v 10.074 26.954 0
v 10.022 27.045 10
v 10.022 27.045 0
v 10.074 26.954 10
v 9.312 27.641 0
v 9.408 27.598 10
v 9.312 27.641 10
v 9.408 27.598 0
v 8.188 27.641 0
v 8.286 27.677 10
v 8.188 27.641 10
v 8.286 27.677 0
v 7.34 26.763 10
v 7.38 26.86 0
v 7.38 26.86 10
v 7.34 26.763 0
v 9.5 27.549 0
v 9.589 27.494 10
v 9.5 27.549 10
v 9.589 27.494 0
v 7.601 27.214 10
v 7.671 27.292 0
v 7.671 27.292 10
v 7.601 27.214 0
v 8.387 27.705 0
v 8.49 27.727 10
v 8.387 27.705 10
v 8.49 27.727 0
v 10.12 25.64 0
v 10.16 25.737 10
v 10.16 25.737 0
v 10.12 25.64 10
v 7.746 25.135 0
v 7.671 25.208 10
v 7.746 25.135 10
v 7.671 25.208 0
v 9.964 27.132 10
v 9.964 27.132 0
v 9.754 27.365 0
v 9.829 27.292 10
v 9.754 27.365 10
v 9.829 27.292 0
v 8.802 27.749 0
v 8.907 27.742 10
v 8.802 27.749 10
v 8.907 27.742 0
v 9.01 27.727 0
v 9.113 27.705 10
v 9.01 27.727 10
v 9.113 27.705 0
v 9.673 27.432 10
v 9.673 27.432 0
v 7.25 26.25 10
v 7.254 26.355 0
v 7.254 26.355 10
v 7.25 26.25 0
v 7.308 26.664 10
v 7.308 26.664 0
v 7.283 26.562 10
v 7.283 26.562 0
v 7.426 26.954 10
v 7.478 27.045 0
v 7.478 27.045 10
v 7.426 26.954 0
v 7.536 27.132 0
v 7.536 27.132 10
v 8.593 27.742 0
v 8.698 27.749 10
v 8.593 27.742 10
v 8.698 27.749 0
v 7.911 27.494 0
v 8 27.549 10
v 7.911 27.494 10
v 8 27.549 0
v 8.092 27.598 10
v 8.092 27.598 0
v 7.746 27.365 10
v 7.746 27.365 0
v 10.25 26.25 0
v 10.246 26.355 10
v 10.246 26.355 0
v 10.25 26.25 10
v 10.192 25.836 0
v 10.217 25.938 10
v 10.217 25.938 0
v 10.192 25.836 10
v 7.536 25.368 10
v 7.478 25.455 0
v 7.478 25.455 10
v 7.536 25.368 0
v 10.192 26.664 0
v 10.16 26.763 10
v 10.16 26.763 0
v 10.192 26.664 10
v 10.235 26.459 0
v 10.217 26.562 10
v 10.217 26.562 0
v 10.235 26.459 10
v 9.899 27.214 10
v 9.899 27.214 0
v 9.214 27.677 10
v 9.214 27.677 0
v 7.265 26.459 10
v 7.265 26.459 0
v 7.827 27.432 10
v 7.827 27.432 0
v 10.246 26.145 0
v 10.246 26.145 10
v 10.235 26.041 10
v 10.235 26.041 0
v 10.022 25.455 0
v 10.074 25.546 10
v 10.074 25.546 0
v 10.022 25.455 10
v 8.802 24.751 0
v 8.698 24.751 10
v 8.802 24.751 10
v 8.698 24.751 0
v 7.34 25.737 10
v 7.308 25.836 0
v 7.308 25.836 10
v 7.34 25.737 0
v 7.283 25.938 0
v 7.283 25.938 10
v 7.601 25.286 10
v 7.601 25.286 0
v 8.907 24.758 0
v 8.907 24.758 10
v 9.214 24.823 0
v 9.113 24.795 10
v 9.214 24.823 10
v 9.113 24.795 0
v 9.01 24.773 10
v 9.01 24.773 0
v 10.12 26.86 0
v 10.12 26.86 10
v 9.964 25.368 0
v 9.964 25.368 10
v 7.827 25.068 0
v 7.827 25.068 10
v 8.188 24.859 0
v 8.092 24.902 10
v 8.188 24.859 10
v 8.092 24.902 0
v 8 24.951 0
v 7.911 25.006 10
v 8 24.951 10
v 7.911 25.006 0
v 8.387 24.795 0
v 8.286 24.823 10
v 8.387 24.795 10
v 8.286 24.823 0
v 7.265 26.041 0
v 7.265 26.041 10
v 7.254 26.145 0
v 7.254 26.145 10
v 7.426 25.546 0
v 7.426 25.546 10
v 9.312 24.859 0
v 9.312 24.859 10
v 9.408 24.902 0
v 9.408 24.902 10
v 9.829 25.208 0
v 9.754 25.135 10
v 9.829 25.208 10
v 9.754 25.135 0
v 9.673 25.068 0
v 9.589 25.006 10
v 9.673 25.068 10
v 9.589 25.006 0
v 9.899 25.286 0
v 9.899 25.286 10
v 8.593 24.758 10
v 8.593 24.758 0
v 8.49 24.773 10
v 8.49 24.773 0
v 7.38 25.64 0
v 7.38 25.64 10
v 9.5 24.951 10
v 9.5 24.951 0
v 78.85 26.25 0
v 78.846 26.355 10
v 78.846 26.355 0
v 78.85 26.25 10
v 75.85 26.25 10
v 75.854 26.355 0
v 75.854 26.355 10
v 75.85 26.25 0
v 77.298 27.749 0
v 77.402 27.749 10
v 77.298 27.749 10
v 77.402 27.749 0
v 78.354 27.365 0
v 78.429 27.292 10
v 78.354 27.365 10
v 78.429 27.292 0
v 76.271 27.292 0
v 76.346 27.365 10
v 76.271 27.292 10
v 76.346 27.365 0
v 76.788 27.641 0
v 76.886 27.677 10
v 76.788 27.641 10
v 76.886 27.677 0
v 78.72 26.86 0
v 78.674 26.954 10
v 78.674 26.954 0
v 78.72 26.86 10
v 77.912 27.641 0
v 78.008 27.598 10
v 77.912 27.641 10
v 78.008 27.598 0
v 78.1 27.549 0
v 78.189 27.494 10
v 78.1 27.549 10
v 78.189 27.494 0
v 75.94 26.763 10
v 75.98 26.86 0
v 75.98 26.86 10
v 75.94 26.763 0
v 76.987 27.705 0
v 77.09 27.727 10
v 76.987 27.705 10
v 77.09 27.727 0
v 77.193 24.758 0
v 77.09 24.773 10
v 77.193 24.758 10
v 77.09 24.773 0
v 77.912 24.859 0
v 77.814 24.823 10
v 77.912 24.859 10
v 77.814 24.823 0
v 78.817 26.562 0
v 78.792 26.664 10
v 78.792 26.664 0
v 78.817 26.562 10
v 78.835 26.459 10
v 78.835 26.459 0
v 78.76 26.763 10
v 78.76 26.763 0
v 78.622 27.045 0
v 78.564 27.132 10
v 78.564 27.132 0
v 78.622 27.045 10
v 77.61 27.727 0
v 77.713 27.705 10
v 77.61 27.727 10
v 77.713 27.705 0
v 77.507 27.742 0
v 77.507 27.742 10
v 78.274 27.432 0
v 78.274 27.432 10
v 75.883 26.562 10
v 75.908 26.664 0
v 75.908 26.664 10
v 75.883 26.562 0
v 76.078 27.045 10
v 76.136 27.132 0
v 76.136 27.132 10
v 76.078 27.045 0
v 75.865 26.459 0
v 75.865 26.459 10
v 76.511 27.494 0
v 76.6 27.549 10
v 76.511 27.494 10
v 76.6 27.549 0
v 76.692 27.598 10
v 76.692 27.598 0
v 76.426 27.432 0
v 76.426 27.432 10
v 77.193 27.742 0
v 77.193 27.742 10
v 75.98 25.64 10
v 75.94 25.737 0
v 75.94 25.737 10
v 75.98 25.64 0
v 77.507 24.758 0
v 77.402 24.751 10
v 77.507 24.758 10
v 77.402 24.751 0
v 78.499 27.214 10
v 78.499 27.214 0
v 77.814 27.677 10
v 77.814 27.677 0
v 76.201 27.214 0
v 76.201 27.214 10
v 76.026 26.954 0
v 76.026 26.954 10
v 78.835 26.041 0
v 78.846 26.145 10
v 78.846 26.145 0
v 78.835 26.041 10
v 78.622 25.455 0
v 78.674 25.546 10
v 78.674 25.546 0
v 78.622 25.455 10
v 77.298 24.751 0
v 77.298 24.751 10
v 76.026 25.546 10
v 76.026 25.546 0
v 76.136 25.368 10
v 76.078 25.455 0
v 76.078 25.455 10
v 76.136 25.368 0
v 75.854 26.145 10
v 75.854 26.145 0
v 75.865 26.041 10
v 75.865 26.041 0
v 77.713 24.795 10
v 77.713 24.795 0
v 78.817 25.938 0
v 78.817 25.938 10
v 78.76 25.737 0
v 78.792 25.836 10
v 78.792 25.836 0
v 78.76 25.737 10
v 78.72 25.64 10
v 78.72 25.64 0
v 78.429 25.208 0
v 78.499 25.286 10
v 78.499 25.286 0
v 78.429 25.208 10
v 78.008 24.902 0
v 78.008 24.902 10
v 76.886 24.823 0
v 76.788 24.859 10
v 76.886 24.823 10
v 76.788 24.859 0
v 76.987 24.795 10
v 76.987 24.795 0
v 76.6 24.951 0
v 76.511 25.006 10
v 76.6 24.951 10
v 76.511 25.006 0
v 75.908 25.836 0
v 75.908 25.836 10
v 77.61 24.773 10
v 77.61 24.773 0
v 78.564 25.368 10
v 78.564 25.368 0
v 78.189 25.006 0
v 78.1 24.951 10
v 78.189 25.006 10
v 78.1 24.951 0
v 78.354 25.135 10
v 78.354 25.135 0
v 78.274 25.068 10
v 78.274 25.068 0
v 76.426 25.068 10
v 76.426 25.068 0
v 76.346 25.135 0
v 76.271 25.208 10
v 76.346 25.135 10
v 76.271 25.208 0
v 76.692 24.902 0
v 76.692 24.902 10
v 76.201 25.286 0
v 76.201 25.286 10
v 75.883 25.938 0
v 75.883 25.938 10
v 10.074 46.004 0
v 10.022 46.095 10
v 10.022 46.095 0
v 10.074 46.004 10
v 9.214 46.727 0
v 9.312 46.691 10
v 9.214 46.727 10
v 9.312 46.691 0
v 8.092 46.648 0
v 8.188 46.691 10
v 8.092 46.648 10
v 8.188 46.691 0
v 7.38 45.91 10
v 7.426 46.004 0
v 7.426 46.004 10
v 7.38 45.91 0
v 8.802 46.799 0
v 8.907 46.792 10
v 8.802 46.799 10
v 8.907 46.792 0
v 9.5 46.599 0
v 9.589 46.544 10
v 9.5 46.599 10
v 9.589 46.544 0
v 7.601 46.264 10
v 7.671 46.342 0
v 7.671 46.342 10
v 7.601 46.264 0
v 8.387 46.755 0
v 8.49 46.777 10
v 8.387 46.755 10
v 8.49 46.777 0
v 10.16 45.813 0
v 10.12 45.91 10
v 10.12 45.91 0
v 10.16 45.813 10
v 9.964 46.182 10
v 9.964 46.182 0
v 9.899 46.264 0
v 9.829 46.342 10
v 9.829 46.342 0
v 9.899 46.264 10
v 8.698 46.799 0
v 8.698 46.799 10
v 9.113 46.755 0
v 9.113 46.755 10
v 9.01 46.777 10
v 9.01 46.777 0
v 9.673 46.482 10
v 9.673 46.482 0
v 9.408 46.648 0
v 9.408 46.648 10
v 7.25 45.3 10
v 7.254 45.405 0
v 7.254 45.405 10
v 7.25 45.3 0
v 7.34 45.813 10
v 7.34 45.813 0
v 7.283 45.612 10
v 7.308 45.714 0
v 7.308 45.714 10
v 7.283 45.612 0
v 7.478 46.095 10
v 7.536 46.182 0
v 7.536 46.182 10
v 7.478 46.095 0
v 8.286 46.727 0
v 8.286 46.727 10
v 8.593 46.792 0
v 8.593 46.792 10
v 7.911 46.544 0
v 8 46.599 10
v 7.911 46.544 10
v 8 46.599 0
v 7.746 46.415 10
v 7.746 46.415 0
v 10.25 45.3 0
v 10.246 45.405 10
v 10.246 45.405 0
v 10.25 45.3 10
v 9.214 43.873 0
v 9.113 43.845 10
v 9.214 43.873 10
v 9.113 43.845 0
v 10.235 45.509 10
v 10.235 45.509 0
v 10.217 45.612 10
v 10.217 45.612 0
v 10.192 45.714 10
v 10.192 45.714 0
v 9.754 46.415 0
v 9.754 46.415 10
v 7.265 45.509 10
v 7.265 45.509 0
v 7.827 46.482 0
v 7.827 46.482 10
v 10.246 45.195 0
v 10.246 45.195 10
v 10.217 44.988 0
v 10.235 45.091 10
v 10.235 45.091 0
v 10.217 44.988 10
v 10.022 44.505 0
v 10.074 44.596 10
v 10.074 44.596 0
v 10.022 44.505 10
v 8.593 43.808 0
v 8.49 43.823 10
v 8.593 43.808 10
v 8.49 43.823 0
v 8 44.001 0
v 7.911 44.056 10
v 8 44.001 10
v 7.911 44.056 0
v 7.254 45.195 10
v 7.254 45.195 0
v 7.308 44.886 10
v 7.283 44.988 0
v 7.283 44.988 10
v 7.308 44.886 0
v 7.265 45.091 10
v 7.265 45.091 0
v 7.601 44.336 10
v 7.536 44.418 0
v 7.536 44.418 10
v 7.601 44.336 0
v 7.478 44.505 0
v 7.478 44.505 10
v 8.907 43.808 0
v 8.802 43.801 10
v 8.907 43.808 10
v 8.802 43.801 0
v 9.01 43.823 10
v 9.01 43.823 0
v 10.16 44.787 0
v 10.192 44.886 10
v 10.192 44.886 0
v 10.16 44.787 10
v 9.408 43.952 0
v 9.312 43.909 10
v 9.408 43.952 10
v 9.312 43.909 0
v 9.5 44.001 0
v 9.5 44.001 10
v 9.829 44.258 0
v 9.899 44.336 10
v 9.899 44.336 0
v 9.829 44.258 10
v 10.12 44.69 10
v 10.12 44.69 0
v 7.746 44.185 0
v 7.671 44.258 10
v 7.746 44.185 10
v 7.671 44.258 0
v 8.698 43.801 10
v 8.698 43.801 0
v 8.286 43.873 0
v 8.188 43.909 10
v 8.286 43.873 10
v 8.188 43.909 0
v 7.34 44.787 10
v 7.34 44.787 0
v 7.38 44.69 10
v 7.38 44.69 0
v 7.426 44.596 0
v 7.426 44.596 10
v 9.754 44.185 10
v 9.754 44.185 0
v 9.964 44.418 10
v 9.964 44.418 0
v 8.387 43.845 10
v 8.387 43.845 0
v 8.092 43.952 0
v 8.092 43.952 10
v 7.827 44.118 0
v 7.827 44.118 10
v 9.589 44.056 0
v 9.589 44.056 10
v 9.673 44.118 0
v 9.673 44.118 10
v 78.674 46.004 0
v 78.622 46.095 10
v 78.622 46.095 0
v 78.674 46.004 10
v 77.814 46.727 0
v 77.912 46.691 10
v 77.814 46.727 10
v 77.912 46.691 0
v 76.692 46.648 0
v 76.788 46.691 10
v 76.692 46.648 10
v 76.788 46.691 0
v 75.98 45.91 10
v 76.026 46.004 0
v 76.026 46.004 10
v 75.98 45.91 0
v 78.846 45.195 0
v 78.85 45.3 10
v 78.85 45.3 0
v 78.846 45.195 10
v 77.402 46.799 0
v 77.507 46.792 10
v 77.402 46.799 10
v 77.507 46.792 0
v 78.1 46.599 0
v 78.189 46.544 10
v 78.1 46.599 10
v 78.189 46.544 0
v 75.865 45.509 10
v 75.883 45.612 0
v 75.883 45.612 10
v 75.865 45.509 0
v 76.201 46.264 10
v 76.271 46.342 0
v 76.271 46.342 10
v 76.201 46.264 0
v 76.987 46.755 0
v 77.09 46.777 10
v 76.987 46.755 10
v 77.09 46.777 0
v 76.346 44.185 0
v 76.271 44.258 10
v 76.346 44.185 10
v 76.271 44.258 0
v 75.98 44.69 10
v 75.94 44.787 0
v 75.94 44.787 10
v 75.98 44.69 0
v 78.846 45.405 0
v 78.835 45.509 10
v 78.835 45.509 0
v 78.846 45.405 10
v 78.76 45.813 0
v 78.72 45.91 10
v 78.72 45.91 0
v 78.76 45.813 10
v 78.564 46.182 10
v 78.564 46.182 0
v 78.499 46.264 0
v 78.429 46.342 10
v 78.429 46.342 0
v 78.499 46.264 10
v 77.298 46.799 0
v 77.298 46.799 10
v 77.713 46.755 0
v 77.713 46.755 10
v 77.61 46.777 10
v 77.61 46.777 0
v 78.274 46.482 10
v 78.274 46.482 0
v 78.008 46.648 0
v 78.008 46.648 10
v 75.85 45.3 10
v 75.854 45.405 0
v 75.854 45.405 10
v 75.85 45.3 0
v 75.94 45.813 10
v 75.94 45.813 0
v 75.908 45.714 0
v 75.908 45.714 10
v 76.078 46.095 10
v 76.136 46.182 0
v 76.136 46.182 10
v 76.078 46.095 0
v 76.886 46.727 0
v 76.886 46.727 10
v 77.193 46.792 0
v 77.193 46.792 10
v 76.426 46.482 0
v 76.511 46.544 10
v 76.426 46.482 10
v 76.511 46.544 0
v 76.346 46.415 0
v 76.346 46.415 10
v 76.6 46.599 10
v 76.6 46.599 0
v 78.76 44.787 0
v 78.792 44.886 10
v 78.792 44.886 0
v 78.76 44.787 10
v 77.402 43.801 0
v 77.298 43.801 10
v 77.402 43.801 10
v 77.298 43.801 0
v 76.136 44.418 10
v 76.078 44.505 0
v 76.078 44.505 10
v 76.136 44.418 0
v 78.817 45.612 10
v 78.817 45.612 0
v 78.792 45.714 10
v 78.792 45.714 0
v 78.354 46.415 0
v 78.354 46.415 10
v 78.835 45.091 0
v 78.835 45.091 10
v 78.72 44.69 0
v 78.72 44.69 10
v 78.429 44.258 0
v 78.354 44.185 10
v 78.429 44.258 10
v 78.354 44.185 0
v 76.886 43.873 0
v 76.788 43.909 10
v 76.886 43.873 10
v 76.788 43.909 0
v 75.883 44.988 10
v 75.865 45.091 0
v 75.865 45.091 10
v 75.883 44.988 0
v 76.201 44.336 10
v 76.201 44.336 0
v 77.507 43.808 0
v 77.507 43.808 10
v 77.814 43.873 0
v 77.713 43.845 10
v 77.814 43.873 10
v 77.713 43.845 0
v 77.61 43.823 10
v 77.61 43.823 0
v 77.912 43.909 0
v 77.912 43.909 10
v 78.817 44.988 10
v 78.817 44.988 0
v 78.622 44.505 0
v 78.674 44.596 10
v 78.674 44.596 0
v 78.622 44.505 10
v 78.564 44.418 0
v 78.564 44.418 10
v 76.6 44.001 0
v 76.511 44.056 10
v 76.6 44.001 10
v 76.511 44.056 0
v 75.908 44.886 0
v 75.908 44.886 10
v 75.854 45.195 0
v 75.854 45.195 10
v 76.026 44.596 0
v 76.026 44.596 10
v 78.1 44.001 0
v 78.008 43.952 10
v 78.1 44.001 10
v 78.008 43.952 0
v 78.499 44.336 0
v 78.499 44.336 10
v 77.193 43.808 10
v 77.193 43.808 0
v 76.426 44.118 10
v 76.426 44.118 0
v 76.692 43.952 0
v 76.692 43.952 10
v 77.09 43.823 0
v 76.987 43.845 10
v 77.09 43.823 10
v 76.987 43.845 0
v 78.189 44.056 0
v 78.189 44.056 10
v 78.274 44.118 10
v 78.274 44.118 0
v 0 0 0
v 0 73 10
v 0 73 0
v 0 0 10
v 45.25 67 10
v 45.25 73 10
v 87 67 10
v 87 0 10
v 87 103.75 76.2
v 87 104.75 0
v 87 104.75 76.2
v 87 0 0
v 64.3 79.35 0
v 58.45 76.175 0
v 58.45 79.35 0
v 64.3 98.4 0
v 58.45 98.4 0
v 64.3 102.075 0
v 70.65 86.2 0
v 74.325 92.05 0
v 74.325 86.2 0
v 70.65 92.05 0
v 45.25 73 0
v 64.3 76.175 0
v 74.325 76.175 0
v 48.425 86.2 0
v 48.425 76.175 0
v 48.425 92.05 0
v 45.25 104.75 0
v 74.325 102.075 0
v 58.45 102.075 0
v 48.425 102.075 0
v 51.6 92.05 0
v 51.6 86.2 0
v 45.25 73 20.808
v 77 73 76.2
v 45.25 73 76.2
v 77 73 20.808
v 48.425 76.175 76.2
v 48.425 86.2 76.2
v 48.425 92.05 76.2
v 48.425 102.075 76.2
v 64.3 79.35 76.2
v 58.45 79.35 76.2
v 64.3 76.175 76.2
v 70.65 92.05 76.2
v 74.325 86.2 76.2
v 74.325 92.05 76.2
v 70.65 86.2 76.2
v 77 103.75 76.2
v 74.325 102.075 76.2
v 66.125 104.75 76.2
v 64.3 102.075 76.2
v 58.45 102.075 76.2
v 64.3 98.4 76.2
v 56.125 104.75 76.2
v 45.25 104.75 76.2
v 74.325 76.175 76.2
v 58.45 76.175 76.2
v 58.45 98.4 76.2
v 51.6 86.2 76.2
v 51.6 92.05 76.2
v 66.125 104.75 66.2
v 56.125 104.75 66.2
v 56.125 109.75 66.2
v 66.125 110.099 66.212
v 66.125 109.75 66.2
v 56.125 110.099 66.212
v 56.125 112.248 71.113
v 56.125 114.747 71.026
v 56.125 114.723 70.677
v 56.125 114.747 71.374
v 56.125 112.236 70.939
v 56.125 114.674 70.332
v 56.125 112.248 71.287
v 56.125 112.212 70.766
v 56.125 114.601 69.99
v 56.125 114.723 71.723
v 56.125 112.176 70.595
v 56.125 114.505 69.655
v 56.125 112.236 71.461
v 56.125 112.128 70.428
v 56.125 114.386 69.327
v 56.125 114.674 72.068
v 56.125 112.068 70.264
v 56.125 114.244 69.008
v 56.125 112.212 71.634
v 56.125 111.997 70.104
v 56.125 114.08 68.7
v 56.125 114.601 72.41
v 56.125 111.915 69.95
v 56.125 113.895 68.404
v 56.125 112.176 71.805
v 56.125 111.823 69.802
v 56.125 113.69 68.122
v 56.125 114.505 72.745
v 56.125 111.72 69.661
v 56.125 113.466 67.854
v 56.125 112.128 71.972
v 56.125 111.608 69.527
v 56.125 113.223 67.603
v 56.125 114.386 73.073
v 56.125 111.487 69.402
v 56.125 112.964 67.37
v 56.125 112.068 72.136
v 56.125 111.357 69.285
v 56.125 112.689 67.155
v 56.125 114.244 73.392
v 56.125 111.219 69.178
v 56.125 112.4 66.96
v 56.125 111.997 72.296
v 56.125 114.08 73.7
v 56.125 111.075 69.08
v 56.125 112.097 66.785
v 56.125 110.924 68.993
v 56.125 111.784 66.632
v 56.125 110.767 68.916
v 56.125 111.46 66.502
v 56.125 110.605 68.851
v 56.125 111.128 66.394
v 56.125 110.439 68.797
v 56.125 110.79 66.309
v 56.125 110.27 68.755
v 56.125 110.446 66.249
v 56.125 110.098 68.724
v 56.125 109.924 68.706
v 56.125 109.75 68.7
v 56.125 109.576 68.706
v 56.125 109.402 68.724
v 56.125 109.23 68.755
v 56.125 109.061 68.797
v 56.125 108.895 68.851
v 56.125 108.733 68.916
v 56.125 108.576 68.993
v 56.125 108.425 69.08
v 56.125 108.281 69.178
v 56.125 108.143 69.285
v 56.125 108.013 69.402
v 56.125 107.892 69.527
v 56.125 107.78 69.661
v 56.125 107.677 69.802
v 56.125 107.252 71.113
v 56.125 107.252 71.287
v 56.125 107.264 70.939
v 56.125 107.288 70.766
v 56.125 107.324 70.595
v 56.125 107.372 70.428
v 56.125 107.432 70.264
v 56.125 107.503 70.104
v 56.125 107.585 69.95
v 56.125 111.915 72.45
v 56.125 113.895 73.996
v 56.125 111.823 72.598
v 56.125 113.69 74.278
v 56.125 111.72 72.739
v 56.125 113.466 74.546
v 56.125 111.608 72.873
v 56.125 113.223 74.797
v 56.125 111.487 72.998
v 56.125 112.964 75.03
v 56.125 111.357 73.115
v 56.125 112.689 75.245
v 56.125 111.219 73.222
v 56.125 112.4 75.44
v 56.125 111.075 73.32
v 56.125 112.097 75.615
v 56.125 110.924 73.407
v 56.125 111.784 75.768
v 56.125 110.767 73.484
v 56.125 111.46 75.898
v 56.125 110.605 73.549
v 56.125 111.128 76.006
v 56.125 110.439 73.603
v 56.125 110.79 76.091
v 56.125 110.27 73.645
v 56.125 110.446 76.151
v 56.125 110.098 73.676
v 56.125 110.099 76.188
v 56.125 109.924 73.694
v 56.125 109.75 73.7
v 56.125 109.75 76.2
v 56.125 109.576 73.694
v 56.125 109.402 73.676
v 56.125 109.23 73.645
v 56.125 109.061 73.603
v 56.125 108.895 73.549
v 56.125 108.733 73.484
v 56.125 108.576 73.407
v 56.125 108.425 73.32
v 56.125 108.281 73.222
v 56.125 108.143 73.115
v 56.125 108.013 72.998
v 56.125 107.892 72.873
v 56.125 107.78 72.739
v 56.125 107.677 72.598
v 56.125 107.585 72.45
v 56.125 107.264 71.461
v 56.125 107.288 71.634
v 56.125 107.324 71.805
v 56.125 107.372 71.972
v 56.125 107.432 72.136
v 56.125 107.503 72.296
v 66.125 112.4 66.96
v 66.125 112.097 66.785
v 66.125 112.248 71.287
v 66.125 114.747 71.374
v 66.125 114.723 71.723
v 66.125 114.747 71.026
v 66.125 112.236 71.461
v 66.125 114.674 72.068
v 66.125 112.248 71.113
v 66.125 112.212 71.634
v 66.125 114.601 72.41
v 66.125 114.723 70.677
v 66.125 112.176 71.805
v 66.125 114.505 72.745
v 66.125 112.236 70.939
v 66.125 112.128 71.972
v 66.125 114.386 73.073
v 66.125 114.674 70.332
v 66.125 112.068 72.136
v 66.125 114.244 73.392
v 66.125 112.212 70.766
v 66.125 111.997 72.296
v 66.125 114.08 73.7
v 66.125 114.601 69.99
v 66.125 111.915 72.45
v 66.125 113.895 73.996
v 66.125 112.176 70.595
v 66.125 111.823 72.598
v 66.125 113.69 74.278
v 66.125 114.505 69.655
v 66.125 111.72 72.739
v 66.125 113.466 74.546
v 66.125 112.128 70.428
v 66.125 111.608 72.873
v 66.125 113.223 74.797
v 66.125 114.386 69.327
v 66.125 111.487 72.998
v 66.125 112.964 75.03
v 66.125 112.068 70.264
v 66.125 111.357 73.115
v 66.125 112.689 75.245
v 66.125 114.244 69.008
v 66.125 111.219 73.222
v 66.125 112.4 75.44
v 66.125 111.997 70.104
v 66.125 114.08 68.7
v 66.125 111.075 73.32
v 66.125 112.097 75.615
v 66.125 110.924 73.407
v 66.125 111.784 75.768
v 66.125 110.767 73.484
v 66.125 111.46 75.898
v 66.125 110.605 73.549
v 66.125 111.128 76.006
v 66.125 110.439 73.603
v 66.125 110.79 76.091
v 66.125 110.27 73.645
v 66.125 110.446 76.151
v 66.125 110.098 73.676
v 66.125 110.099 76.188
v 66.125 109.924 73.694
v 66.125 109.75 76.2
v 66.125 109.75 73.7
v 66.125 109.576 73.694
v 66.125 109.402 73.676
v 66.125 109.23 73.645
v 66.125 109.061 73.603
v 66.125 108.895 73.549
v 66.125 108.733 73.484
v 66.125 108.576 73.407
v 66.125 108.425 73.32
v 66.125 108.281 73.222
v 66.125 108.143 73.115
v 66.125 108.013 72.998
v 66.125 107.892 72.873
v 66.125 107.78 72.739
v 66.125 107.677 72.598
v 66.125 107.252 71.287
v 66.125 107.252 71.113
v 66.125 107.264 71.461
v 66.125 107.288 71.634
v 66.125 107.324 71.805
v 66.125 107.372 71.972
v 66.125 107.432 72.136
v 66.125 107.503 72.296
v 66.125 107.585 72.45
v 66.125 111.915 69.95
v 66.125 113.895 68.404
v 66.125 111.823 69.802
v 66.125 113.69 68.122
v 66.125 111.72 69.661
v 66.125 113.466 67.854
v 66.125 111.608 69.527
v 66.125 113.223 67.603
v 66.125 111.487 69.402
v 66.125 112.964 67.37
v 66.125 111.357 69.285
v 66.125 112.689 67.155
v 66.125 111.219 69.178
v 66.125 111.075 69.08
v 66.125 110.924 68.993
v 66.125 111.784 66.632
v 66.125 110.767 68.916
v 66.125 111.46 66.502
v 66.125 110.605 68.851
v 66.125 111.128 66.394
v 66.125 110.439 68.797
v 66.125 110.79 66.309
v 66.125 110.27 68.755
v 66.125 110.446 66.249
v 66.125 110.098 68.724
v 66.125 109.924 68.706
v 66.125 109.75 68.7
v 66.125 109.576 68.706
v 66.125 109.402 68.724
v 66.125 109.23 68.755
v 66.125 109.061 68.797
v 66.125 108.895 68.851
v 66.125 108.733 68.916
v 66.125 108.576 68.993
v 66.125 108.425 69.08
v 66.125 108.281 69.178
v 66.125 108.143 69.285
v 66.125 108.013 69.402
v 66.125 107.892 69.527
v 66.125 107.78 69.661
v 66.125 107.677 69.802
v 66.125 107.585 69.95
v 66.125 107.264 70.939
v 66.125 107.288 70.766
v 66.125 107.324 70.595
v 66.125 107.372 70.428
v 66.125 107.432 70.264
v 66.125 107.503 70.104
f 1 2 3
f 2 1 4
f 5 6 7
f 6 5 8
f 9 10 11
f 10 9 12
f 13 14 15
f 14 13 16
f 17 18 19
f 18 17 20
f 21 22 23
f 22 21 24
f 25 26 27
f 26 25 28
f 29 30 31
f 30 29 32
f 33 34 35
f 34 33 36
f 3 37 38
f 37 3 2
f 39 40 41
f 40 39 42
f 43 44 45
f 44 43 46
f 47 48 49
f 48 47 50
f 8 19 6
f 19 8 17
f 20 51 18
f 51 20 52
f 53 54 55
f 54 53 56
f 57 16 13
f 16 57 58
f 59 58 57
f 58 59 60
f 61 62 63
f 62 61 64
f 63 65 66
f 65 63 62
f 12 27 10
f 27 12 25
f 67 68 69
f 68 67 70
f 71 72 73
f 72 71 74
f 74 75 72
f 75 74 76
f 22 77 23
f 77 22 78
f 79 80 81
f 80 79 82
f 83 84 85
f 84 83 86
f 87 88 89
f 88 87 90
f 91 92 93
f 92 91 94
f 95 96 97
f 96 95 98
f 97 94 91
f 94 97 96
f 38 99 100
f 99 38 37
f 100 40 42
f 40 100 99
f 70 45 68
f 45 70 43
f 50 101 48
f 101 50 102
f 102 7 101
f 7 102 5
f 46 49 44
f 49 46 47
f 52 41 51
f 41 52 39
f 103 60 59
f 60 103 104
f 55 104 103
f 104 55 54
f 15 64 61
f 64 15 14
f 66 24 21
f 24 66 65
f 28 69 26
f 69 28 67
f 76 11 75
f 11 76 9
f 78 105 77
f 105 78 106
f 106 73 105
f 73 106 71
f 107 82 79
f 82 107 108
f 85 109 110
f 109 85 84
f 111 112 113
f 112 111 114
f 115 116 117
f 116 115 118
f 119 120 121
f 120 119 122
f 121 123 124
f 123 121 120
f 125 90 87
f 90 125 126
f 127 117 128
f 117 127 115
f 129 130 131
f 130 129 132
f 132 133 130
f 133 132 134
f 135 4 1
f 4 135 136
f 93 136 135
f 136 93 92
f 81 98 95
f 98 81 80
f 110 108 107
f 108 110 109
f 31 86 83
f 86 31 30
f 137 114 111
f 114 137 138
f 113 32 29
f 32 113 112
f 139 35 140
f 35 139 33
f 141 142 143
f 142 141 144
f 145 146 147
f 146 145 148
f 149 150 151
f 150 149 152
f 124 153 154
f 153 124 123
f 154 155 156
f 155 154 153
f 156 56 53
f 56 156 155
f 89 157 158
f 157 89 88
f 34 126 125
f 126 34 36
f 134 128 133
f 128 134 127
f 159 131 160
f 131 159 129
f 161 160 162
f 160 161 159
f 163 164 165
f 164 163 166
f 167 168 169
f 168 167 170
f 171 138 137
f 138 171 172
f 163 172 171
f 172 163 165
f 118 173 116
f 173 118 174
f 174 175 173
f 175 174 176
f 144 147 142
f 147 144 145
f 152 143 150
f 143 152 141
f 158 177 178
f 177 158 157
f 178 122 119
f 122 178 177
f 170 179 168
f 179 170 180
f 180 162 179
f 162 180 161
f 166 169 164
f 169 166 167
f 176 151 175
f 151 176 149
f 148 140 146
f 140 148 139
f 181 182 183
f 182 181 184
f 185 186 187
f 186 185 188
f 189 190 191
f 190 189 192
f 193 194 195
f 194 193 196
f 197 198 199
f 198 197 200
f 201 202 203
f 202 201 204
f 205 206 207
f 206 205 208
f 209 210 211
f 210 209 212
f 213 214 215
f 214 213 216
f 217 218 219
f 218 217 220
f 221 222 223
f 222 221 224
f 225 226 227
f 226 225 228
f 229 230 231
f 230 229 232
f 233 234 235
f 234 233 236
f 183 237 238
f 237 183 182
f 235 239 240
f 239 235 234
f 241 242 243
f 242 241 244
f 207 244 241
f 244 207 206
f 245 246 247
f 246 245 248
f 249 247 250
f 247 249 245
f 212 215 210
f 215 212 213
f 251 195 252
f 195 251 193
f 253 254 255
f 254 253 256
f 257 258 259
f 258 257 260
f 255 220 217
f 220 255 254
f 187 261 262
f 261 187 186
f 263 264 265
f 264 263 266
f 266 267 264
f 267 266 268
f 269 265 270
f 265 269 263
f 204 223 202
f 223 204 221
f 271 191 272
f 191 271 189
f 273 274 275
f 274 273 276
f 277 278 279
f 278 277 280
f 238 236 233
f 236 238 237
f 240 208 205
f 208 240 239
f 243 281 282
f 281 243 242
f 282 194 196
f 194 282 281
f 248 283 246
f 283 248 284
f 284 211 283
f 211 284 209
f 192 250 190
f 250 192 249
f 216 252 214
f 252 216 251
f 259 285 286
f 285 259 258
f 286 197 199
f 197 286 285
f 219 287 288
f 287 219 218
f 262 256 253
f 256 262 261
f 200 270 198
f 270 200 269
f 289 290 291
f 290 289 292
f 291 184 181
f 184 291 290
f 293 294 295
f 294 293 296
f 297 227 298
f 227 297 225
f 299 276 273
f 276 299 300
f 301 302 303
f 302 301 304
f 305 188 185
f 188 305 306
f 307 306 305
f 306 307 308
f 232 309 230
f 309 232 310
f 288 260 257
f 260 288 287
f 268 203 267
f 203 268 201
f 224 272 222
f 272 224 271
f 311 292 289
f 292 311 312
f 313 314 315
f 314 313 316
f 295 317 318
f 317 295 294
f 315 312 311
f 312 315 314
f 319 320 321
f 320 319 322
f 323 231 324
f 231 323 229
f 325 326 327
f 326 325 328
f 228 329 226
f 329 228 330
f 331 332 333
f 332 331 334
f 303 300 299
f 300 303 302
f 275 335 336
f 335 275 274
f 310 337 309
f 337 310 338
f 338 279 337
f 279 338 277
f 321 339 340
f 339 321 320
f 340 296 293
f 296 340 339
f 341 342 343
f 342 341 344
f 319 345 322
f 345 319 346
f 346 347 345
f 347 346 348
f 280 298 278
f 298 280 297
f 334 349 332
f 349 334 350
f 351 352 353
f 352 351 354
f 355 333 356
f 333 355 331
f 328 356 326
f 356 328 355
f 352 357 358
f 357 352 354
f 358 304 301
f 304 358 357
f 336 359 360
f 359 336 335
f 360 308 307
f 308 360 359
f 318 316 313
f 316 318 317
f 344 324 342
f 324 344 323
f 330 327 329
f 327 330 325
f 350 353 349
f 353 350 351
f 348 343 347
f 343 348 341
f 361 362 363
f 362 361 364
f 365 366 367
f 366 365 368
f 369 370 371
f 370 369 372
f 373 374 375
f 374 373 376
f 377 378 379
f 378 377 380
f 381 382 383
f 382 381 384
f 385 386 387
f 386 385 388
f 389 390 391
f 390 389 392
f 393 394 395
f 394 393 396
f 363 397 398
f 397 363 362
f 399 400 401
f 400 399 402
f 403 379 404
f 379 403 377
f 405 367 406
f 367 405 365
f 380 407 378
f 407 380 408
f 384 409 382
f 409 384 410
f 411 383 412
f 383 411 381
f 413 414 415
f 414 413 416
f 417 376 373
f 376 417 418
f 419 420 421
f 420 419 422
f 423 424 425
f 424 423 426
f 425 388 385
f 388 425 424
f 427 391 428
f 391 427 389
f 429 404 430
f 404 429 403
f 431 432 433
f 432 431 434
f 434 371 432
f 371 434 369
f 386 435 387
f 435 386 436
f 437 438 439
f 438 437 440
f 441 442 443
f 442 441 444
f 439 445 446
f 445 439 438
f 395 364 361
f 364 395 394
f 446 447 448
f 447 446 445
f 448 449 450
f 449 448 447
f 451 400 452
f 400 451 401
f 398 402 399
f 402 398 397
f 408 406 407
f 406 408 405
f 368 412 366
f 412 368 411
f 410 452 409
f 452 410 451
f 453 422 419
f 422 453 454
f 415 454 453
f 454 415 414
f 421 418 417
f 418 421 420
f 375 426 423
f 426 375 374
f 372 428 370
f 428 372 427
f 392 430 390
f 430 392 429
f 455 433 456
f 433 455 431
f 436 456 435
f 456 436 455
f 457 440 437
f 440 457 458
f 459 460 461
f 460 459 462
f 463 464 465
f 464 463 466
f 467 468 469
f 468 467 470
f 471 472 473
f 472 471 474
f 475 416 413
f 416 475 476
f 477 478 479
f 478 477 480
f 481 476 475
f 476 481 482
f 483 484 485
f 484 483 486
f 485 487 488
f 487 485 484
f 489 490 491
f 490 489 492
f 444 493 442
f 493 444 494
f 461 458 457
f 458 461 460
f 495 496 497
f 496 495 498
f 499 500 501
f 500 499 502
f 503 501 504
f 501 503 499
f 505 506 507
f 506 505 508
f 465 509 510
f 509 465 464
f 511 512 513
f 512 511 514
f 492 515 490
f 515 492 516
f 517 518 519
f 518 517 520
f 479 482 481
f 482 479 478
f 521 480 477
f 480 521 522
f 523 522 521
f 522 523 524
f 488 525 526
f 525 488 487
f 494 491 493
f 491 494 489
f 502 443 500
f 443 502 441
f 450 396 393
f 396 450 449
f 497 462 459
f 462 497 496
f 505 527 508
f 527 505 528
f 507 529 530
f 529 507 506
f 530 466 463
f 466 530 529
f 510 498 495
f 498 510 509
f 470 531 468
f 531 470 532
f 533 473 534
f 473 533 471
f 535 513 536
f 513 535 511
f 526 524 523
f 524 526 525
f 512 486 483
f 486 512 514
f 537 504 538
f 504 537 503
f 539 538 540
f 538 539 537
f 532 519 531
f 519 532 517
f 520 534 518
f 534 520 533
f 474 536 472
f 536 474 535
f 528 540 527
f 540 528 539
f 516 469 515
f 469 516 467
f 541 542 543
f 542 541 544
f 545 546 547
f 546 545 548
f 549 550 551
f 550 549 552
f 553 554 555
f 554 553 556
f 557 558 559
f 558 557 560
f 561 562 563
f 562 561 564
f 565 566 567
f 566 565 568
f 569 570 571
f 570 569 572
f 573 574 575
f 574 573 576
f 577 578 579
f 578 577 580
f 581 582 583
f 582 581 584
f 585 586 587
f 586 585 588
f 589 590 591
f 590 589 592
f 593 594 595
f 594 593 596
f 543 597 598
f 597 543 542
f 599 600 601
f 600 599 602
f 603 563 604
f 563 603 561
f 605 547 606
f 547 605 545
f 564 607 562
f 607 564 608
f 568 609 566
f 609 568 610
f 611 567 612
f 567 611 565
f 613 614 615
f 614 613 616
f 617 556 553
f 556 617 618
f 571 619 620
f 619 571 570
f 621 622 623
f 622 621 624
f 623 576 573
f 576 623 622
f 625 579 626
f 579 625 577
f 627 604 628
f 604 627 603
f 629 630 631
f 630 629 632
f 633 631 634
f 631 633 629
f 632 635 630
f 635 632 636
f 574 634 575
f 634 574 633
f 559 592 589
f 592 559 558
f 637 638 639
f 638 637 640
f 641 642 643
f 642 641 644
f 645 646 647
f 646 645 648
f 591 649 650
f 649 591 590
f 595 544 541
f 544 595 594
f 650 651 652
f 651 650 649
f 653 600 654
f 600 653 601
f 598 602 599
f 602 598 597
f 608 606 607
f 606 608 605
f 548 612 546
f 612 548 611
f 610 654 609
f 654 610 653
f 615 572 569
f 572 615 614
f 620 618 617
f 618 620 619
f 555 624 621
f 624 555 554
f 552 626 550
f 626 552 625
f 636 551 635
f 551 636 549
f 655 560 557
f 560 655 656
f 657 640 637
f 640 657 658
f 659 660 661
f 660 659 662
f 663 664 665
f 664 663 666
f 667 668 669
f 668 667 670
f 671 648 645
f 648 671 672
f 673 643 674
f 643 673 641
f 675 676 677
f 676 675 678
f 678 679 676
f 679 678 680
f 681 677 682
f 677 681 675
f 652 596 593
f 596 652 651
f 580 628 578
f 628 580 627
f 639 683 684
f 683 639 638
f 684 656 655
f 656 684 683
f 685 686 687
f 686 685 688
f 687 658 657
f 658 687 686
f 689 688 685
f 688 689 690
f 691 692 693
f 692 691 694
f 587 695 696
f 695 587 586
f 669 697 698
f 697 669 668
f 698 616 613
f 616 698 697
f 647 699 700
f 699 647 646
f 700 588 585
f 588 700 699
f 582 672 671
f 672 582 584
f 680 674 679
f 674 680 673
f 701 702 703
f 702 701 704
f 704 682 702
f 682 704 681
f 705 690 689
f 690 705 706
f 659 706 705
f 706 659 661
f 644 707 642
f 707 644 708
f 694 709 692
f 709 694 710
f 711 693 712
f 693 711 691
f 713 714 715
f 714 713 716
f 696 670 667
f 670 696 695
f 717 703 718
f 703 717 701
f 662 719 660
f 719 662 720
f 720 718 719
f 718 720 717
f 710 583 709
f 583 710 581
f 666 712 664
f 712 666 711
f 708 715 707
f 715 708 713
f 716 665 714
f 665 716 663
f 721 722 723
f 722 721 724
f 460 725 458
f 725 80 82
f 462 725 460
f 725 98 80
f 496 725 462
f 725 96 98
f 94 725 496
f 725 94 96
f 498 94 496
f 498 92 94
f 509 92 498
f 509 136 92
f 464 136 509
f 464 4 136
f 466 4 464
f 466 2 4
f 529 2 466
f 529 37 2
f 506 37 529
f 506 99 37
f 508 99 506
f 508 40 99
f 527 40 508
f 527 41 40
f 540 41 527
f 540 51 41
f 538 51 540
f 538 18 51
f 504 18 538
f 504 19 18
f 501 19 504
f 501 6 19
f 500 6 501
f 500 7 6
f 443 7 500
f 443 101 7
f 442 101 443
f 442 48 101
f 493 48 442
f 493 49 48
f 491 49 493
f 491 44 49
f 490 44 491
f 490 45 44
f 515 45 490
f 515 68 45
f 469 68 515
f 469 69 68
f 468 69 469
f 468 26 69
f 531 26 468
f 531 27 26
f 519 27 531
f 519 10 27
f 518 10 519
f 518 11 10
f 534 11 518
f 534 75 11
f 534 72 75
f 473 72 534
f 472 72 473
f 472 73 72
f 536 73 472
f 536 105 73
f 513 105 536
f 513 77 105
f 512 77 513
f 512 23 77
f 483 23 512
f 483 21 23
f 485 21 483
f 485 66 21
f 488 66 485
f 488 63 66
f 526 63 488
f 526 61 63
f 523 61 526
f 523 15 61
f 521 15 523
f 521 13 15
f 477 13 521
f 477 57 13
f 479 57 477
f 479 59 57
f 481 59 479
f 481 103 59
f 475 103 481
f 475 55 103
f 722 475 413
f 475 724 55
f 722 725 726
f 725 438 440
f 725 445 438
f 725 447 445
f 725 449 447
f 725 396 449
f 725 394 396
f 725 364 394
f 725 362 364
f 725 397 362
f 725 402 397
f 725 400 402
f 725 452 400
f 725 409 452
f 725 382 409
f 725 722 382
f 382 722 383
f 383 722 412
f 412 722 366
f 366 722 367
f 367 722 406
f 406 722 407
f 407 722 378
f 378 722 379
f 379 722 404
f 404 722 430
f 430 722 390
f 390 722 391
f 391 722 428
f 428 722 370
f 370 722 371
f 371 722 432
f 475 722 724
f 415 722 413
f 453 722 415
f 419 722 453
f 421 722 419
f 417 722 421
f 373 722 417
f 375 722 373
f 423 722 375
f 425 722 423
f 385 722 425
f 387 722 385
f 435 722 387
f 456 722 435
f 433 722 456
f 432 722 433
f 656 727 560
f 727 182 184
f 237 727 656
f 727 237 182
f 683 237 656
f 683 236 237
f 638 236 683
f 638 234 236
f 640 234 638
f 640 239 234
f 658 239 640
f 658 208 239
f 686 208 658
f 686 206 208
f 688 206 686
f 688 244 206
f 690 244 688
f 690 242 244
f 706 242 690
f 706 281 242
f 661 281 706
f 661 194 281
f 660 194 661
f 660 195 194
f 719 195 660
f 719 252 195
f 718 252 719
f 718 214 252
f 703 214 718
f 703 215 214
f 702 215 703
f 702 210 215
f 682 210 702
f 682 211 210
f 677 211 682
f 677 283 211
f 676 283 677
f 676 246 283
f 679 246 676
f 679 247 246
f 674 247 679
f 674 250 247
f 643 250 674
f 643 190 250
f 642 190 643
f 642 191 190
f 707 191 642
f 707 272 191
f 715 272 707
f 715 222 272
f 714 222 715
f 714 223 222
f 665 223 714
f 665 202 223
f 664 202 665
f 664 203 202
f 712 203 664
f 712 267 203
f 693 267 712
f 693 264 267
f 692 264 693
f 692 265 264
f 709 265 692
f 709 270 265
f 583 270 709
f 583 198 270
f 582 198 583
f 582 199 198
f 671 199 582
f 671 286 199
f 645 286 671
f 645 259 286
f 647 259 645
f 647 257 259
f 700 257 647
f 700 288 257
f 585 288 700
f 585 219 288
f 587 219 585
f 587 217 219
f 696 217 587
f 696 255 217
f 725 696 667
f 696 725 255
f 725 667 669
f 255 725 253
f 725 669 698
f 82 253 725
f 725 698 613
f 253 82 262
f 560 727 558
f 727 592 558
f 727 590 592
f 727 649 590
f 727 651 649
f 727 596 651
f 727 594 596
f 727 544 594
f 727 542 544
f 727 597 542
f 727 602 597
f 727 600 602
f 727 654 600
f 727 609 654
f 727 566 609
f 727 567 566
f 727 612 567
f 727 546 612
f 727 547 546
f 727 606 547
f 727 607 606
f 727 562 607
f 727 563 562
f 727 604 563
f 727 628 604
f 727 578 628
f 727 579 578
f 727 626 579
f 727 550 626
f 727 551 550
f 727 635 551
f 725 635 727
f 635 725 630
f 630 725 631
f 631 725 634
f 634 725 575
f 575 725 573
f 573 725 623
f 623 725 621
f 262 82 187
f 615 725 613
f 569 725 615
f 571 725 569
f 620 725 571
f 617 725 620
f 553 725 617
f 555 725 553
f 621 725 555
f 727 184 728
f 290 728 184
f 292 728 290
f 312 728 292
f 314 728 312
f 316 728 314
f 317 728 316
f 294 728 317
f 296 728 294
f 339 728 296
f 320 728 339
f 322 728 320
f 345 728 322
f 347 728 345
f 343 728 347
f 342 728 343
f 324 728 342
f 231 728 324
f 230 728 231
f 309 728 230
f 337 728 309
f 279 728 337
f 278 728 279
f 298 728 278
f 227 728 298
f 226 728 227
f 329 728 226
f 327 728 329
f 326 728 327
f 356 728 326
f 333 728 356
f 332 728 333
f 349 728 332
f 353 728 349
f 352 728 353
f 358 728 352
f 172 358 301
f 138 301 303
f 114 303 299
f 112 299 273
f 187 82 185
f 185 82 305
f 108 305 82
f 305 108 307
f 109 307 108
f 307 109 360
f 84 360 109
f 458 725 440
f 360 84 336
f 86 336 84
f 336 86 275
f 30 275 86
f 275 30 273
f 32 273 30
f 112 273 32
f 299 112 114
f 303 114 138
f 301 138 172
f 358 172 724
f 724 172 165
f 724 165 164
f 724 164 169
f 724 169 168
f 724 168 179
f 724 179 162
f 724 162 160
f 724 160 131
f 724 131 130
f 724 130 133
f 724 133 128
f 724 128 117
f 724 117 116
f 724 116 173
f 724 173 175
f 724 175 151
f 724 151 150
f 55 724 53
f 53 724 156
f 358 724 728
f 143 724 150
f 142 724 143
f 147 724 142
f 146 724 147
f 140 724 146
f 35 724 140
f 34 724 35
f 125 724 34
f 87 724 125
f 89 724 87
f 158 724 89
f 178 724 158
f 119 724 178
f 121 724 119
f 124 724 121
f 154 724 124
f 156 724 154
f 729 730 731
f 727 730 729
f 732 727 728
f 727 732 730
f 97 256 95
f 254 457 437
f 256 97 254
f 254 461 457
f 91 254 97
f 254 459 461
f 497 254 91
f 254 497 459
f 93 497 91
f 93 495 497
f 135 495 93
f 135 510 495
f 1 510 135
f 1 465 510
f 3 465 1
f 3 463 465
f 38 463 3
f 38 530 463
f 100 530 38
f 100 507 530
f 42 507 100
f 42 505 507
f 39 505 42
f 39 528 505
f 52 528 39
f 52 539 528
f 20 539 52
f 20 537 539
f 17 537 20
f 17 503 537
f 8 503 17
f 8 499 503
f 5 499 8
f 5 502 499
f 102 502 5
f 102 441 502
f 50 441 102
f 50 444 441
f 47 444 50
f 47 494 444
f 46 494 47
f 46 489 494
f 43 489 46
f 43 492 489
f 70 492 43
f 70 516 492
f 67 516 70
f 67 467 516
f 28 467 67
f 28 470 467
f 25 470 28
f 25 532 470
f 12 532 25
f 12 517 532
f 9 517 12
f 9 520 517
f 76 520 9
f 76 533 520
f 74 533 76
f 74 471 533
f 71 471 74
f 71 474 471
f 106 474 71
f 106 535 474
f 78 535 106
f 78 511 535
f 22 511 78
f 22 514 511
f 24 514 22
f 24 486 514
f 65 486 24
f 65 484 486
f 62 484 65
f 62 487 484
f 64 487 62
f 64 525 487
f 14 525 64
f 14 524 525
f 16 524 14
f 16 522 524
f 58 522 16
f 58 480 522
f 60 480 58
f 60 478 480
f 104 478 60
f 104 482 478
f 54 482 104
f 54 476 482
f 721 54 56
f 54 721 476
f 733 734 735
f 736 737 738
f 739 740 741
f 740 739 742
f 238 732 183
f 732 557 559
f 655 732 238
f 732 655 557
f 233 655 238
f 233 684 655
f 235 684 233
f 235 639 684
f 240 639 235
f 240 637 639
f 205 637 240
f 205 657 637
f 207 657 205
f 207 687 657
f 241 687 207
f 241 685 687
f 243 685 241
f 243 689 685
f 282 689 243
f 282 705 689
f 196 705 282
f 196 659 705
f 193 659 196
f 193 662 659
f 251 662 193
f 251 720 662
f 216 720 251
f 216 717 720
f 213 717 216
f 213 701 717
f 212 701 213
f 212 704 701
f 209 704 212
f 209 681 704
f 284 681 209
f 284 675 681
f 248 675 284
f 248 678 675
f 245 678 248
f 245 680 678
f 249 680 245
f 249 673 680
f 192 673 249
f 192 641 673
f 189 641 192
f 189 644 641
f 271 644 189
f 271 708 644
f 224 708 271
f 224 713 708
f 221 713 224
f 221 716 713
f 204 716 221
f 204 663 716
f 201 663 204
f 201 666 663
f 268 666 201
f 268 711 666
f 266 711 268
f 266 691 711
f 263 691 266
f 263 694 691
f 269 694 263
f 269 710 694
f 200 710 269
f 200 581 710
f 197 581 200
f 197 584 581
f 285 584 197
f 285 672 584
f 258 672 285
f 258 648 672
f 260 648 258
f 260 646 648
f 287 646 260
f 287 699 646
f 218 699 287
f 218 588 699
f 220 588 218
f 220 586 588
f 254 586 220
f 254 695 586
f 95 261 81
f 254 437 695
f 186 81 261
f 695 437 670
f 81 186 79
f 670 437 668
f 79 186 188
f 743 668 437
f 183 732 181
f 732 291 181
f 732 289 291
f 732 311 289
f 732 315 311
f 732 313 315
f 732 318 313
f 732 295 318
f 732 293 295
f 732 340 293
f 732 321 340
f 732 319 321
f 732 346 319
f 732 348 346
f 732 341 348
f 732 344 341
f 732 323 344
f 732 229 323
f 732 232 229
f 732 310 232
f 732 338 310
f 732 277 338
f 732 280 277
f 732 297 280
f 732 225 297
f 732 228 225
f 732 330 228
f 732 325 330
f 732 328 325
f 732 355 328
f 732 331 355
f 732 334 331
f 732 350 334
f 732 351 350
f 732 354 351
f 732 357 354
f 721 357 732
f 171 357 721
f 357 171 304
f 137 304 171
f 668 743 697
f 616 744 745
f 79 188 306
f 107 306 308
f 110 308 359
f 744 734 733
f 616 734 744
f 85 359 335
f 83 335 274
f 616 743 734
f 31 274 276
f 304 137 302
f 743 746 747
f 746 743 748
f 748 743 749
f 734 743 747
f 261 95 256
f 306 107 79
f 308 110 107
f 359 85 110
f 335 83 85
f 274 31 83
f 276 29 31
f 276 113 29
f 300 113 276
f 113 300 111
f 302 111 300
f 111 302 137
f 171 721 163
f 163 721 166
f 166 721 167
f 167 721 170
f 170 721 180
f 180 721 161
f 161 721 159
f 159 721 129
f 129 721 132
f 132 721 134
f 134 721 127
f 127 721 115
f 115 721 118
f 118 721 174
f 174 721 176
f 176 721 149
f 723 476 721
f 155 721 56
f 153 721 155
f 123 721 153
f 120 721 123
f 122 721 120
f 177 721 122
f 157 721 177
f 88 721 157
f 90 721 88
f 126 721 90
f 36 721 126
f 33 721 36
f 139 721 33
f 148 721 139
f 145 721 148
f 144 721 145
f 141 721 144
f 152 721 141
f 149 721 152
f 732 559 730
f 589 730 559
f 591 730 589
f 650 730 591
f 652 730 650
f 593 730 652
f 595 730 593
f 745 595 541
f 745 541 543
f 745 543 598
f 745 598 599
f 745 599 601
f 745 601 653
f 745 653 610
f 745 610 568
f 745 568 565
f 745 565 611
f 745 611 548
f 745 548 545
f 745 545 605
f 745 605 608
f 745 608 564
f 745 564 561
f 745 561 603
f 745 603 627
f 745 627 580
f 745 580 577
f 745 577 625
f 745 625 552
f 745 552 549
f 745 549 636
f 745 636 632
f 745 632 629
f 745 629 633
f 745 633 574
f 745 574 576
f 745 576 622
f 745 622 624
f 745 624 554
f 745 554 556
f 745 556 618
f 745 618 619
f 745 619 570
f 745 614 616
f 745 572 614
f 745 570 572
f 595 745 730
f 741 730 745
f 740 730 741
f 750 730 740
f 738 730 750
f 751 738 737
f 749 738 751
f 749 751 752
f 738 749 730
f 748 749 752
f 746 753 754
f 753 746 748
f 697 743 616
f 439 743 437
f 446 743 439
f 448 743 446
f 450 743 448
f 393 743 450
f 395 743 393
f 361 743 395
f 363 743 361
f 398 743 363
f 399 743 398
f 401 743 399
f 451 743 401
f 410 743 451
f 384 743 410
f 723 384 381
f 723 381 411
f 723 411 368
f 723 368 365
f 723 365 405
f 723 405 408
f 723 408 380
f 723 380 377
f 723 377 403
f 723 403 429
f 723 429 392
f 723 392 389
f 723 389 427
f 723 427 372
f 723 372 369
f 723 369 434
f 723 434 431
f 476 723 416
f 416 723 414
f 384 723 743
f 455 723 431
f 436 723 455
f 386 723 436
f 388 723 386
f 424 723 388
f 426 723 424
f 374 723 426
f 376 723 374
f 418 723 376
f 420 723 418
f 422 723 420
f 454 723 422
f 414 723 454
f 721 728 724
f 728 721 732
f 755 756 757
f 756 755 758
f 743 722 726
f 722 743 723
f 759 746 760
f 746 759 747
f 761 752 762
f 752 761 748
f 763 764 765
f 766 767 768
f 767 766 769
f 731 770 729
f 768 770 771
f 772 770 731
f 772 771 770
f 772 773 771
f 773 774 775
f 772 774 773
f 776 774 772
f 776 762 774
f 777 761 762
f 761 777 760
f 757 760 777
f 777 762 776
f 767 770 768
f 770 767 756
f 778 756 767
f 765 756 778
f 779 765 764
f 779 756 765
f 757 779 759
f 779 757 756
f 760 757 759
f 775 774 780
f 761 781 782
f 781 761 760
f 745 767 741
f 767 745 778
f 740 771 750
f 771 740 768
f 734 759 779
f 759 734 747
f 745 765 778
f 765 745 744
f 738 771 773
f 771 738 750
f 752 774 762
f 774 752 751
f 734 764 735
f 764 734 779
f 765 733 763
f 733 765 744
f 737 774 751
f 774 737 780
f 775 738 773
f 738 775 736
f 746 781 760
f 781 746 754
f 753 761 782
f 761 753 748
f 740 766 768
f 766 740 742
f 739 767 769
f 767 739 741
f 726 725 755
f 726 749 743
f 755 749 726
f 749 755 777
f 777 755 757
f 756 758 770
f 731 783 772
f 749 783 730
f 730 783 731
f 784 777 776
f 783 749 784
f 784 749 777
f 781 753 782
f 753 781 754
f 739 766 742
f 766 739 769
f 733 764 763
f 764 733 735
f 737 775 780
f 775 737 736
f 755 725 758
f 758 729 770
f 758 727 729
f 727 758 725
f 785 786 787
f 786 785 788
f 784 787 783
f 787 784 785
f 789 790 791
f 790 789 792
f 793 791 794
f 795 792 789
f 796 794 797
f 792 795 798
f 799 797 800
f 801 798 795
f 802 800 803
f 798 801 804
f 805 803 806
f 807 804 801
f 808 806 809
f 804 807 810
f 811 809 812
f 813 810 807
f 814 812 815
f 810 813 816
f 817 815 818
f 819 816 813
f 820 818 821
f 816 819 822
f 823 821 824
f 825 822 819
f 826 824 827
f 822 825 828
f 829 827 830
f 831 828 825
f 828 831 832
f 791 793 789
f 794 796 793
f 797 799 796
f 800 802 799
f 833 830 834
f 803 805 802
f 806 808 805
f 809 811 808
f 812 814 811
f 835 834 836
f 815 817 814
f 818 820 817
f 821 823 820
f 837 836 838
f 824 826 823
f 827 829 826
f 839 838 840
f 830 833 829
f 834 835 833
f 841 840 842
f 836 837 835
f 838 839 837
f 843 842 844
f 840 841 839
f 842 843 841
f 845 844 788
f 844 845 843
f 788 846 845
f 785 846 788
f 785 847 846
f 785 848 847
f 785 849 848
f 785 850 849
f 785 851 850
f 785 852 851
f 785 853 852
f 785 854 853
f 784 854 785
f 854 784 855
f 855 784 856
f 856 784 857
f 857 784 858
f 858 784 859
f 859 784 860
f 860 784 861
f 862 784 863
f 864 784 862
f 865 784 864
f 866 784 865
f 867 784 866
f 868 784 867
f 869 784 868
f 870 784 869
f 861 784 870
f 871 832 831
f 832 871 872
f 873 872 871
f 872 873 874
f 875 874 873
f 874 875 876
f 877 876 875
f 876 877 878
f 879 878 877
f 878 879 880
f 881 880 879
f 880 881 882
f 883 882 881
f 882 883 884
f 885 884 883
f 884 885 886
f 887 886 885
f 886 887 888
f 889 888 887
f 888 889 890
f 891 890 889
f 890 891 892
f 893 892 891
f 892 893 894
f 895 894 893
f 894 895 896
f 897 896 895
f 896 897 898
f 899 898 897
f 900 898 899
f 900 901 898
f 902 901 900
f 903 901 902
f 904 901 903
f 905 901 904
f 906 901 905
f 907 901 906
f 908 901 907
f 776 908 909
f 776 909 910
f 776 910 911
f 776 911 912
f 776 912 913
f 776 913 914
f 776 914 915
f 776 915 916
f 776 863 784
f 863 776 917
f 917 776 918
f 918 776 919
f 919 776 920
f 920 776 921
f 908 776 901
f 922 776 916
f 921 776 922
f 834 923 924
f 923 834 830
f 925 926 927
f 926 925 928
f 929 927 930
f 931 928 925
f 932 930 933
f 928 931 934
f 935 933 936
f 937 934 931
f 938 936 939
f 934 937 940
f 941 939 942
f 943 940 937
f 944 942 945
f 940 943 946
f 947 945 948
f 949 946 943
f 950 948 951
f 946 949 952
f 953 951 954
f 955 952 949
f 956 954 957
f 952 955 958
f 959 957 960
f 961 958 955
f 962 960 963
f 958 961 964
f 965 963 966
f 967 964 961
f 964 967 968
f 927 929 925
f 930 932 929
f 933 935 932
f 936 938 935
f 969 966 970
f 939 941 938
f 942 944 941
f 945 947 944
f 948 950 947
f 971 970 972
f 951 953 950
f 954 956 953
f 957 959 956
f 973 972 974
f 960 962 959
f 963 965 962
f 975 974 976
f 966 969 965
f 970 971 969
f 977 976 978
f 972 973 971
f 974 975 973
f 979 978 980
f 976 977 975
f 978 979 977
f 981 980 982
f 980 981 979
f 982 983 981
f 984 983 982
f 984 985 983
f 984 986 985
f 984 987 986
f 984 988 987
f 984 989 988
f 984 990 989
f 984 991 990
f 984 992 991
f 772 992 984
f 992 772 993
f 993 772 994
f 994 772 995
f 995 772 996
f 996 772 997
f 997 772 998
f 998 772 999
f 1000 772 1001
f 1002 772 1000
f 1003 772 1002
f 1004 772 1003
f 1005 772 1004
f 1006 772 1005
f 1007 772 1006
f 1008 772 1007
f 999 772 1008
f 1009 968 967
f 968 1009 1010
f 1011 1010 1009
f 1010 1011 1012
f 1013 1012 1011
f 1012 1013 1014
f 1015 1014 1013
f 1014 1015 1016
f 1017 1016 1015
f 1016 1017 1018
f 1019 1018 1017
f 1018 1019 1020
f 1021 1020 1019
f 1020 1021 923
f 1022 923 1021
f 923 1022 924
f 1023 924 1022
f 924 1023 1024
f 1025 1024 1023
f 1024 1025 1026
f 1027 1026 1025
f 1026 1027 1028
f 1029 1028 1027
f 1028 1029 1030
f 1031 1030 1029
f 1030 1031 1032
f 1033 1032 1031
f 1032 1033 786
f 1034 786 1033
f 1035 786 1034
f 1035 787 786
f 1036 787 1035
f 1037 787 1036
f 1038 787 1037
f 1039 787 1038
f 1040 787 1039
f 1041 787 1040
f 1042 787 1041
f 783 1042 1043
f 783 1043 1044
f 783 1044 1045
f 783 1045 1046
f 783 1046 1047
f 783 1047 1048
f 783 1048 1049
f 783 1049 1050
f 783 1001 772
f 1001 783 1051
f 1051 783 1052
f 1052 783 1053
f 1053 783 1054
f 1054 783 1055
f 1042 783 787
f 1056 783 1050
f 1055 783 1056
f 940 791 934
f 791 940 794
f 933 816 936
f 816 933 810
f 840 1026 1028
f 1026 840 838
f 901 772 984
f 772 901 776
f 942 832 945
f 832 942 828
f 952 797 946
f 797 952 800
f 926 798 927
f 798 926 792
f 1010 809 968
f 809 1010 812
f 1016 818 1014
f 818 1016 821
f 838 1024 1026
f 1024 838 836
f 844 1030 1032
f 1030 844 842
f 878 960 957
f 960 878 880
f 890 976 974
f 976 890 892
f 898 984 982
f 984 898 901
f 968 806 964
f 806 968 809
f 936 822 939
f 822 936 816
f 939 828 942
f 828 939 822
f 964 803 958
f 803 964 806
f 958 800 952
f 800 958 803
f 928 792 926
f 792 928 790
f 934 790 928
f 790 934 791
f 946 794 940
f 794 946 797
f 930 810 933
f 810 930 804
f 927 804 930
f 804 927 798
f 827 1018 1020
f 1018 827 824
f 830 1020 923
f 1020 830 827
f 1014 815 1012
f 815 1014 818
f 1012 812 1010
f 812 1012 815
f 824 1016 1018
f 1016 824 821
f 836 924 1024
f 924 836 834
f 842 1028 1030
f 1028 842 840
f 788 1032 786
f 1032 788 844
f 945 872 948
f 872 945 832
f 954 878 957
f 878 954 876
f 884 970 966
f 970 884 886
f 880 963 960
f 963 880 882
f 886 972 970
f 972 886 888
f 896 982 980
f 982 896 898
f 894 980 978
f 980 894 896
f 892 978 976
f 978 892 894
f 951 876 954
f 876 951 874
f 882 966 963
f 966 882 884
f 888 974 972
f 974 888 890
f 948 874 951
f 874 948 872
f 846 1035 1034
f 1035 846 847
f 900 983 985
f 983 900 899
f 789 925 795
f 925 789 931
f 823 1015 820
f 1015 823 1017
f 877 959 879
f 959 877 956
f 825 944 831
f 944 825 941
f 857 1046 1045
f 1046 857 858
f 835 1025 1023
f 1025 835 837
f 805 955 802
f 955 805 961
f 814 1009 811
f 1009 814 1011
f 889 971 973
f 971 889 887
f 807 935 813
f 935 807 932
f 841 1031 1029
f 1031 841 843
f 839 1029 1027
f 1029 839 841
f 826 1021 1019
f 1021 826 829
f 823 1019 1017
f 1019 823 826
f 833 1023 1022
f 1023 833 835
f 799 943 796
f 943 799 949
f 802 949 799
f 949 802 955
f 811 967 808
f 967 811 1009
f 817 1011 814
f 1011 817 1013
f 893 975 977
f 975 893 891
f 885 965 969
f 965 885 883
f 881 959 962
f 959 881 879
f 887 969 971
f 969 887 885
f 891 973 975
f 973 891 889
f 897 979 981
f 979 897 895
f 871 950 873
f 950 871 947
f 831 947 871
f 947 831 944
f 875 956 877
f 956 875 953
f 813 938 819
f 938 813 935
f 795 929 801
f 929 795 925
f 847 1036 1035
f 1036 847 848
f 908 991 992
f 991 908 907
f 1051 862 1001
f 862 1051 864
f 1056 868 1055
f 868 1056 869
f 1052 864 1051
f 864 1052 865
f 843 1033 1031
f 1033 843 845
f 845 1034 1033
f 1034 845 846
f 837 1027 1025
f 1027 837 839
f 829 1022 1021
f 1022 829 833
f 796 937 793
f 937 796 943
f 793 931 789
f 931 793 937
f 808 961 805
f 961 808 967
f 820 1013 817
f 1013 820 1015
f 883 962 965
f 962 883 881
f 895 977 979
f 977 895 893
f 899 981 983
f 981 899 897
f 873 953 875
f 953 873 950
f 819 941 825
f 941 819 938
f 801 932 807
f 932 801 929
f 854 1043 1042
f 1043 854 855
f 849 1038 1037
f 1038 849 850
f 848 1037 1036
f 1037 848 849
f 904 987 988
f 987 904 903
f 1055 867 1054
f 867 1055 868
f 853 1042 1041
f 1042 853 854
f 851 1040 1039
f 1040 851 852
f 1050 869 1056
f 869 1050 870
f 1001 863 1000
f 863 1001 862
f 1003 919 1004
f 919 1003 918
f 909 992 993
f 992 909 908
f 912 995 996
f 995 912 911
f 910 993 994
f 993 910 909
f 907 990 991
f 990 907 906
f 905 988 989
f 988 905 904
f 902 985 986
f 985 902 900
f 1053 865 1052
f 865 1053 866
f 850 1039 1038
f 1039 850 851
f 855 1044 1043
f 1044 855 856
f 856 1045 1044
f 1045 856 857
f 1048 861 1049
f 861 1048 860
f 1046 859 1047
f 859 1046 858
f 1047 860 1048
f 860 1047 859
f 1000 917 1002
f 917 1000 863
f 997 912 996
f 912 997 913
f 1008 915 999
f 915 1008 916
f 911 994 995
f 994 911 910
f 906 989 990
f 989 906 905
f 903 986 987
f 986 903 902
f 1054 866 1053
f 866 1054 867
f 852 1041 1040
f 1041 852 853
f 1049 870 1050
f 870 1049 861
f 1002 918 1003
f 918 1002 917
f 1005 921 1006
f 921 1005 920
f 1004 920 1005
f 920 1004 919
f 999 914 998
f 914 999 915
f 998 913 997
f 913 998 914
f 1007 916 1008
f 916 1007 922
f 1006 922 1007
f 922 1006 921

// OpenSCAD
// file: 8020.scad
in2mm=25.4;

adjustment=.5;
alSide = in2mm+adjustment;
adSideCuts = .25*in2mm-adjustment;

module aluminium8020(moduleHeight)
{
    difference(){
        cube([alSide, alSide, moduleHeight]);
        
        translate([alSide/2-(adSideCuts/2),0,0]) 
            cube([adSideCuts, adSideCuts, moduleHeight]);
        translate([alSide/2-(adSideCuts/2),alSide-adSideCuts,0])
            cube([adSideCuts, adSideCuts, moduleHeight]);
        translate([0,alSide/2-(adSideCuts/2),0])
            cube([adSideCuts, adSideCuts, moduleHeight]);
        translate([alSide-adSideCuts,alSide/2-(adSideCuts/2),0])
            cube([adSideCuts, adSideCuts, moduleHeight]);
    }
}

module linearBearing(height){
    difference(){
        cube([1.25*in2mm, 1.25*in2mm, height]);
        translate([1/8*in2mm,1/8*in2mm,0])aluminium8020(height);
        translate([(in2mm/4), (in2mm/4),])cube([.75*in2mm, .75*in2mm, height]);
    }
}




linearBearing(.5*in2mm);
// main file
use <8020.scad>

$fn=90;
in2mm=25.4;
moduleHeight = in2mm*72;
holeDiameter = 3;
baseThickness = 10;
baseWidth = 87; //measured from kinect
baseDepth = 73; //measured from kinect
bearingHeight = 3*in2mm;
8020width = 1.25*in2mm;

module kinectBase()
{
    //holes
    difference(){
        cube([baseWidth, baseDepth, baseThickness]);
        translate([7.5+2.5/2,25+2.5/2,0])
            union(){
                translate([0,0,-.5])cylinder(d=holeDiameter, h=baseThickness+1);
                translate([68.6,0,-.5])cylinder(d=holeDiameter, h=baseThickness+1);
                translate([0,(.75*in2mm),-.5])cylinder(d=holeDiameter, h=baseThickness+1);
                translate([68.6,(.75*in2mm),-.5])cylinder(d=holeDiameter, h=baseThickness+1);
            }
    }
}

module reinforcement()
{
    difference()
    {
        hull(){
            translate([0,8020width,0])cube([8020width+10,1,bearingHeight]);
            translate([0,-5,0])cube([8020width+10,5,baseThickness]);
        }
        translate([0,2,0])cube([8020width,8020width-1,bearingHeight]);
    }
}

module hook()
{
    translate([0,baseThickness/2,0])
    rotate([0,90,0])
    difference()
    {
        hull()
        {
            cylinder(d=baseThickness, h=baseThickness);
            translate([-baseThickness/2,-baseThickness/2,0])cube([baseThickness,0.1,baseThickness]);
        }
        cylinder(d=baseThickness/2, h=baseThickness);
    }
}

/**
 *   The actual part.
 */
union(){
    kinectBase();
    translate([baseWidth-8020width-10, baseDepth, 0])linearBearing(bearingHeight);
    translate([baseWidth-baseThickness-8020width, baseDepth-1, 0])reinforcement();
    translate([baseWidth-8020width/2-baseThickness-baseThickness/2, baseDepth+8020width, bearingHeight-baseThickness/2])hook();
}
